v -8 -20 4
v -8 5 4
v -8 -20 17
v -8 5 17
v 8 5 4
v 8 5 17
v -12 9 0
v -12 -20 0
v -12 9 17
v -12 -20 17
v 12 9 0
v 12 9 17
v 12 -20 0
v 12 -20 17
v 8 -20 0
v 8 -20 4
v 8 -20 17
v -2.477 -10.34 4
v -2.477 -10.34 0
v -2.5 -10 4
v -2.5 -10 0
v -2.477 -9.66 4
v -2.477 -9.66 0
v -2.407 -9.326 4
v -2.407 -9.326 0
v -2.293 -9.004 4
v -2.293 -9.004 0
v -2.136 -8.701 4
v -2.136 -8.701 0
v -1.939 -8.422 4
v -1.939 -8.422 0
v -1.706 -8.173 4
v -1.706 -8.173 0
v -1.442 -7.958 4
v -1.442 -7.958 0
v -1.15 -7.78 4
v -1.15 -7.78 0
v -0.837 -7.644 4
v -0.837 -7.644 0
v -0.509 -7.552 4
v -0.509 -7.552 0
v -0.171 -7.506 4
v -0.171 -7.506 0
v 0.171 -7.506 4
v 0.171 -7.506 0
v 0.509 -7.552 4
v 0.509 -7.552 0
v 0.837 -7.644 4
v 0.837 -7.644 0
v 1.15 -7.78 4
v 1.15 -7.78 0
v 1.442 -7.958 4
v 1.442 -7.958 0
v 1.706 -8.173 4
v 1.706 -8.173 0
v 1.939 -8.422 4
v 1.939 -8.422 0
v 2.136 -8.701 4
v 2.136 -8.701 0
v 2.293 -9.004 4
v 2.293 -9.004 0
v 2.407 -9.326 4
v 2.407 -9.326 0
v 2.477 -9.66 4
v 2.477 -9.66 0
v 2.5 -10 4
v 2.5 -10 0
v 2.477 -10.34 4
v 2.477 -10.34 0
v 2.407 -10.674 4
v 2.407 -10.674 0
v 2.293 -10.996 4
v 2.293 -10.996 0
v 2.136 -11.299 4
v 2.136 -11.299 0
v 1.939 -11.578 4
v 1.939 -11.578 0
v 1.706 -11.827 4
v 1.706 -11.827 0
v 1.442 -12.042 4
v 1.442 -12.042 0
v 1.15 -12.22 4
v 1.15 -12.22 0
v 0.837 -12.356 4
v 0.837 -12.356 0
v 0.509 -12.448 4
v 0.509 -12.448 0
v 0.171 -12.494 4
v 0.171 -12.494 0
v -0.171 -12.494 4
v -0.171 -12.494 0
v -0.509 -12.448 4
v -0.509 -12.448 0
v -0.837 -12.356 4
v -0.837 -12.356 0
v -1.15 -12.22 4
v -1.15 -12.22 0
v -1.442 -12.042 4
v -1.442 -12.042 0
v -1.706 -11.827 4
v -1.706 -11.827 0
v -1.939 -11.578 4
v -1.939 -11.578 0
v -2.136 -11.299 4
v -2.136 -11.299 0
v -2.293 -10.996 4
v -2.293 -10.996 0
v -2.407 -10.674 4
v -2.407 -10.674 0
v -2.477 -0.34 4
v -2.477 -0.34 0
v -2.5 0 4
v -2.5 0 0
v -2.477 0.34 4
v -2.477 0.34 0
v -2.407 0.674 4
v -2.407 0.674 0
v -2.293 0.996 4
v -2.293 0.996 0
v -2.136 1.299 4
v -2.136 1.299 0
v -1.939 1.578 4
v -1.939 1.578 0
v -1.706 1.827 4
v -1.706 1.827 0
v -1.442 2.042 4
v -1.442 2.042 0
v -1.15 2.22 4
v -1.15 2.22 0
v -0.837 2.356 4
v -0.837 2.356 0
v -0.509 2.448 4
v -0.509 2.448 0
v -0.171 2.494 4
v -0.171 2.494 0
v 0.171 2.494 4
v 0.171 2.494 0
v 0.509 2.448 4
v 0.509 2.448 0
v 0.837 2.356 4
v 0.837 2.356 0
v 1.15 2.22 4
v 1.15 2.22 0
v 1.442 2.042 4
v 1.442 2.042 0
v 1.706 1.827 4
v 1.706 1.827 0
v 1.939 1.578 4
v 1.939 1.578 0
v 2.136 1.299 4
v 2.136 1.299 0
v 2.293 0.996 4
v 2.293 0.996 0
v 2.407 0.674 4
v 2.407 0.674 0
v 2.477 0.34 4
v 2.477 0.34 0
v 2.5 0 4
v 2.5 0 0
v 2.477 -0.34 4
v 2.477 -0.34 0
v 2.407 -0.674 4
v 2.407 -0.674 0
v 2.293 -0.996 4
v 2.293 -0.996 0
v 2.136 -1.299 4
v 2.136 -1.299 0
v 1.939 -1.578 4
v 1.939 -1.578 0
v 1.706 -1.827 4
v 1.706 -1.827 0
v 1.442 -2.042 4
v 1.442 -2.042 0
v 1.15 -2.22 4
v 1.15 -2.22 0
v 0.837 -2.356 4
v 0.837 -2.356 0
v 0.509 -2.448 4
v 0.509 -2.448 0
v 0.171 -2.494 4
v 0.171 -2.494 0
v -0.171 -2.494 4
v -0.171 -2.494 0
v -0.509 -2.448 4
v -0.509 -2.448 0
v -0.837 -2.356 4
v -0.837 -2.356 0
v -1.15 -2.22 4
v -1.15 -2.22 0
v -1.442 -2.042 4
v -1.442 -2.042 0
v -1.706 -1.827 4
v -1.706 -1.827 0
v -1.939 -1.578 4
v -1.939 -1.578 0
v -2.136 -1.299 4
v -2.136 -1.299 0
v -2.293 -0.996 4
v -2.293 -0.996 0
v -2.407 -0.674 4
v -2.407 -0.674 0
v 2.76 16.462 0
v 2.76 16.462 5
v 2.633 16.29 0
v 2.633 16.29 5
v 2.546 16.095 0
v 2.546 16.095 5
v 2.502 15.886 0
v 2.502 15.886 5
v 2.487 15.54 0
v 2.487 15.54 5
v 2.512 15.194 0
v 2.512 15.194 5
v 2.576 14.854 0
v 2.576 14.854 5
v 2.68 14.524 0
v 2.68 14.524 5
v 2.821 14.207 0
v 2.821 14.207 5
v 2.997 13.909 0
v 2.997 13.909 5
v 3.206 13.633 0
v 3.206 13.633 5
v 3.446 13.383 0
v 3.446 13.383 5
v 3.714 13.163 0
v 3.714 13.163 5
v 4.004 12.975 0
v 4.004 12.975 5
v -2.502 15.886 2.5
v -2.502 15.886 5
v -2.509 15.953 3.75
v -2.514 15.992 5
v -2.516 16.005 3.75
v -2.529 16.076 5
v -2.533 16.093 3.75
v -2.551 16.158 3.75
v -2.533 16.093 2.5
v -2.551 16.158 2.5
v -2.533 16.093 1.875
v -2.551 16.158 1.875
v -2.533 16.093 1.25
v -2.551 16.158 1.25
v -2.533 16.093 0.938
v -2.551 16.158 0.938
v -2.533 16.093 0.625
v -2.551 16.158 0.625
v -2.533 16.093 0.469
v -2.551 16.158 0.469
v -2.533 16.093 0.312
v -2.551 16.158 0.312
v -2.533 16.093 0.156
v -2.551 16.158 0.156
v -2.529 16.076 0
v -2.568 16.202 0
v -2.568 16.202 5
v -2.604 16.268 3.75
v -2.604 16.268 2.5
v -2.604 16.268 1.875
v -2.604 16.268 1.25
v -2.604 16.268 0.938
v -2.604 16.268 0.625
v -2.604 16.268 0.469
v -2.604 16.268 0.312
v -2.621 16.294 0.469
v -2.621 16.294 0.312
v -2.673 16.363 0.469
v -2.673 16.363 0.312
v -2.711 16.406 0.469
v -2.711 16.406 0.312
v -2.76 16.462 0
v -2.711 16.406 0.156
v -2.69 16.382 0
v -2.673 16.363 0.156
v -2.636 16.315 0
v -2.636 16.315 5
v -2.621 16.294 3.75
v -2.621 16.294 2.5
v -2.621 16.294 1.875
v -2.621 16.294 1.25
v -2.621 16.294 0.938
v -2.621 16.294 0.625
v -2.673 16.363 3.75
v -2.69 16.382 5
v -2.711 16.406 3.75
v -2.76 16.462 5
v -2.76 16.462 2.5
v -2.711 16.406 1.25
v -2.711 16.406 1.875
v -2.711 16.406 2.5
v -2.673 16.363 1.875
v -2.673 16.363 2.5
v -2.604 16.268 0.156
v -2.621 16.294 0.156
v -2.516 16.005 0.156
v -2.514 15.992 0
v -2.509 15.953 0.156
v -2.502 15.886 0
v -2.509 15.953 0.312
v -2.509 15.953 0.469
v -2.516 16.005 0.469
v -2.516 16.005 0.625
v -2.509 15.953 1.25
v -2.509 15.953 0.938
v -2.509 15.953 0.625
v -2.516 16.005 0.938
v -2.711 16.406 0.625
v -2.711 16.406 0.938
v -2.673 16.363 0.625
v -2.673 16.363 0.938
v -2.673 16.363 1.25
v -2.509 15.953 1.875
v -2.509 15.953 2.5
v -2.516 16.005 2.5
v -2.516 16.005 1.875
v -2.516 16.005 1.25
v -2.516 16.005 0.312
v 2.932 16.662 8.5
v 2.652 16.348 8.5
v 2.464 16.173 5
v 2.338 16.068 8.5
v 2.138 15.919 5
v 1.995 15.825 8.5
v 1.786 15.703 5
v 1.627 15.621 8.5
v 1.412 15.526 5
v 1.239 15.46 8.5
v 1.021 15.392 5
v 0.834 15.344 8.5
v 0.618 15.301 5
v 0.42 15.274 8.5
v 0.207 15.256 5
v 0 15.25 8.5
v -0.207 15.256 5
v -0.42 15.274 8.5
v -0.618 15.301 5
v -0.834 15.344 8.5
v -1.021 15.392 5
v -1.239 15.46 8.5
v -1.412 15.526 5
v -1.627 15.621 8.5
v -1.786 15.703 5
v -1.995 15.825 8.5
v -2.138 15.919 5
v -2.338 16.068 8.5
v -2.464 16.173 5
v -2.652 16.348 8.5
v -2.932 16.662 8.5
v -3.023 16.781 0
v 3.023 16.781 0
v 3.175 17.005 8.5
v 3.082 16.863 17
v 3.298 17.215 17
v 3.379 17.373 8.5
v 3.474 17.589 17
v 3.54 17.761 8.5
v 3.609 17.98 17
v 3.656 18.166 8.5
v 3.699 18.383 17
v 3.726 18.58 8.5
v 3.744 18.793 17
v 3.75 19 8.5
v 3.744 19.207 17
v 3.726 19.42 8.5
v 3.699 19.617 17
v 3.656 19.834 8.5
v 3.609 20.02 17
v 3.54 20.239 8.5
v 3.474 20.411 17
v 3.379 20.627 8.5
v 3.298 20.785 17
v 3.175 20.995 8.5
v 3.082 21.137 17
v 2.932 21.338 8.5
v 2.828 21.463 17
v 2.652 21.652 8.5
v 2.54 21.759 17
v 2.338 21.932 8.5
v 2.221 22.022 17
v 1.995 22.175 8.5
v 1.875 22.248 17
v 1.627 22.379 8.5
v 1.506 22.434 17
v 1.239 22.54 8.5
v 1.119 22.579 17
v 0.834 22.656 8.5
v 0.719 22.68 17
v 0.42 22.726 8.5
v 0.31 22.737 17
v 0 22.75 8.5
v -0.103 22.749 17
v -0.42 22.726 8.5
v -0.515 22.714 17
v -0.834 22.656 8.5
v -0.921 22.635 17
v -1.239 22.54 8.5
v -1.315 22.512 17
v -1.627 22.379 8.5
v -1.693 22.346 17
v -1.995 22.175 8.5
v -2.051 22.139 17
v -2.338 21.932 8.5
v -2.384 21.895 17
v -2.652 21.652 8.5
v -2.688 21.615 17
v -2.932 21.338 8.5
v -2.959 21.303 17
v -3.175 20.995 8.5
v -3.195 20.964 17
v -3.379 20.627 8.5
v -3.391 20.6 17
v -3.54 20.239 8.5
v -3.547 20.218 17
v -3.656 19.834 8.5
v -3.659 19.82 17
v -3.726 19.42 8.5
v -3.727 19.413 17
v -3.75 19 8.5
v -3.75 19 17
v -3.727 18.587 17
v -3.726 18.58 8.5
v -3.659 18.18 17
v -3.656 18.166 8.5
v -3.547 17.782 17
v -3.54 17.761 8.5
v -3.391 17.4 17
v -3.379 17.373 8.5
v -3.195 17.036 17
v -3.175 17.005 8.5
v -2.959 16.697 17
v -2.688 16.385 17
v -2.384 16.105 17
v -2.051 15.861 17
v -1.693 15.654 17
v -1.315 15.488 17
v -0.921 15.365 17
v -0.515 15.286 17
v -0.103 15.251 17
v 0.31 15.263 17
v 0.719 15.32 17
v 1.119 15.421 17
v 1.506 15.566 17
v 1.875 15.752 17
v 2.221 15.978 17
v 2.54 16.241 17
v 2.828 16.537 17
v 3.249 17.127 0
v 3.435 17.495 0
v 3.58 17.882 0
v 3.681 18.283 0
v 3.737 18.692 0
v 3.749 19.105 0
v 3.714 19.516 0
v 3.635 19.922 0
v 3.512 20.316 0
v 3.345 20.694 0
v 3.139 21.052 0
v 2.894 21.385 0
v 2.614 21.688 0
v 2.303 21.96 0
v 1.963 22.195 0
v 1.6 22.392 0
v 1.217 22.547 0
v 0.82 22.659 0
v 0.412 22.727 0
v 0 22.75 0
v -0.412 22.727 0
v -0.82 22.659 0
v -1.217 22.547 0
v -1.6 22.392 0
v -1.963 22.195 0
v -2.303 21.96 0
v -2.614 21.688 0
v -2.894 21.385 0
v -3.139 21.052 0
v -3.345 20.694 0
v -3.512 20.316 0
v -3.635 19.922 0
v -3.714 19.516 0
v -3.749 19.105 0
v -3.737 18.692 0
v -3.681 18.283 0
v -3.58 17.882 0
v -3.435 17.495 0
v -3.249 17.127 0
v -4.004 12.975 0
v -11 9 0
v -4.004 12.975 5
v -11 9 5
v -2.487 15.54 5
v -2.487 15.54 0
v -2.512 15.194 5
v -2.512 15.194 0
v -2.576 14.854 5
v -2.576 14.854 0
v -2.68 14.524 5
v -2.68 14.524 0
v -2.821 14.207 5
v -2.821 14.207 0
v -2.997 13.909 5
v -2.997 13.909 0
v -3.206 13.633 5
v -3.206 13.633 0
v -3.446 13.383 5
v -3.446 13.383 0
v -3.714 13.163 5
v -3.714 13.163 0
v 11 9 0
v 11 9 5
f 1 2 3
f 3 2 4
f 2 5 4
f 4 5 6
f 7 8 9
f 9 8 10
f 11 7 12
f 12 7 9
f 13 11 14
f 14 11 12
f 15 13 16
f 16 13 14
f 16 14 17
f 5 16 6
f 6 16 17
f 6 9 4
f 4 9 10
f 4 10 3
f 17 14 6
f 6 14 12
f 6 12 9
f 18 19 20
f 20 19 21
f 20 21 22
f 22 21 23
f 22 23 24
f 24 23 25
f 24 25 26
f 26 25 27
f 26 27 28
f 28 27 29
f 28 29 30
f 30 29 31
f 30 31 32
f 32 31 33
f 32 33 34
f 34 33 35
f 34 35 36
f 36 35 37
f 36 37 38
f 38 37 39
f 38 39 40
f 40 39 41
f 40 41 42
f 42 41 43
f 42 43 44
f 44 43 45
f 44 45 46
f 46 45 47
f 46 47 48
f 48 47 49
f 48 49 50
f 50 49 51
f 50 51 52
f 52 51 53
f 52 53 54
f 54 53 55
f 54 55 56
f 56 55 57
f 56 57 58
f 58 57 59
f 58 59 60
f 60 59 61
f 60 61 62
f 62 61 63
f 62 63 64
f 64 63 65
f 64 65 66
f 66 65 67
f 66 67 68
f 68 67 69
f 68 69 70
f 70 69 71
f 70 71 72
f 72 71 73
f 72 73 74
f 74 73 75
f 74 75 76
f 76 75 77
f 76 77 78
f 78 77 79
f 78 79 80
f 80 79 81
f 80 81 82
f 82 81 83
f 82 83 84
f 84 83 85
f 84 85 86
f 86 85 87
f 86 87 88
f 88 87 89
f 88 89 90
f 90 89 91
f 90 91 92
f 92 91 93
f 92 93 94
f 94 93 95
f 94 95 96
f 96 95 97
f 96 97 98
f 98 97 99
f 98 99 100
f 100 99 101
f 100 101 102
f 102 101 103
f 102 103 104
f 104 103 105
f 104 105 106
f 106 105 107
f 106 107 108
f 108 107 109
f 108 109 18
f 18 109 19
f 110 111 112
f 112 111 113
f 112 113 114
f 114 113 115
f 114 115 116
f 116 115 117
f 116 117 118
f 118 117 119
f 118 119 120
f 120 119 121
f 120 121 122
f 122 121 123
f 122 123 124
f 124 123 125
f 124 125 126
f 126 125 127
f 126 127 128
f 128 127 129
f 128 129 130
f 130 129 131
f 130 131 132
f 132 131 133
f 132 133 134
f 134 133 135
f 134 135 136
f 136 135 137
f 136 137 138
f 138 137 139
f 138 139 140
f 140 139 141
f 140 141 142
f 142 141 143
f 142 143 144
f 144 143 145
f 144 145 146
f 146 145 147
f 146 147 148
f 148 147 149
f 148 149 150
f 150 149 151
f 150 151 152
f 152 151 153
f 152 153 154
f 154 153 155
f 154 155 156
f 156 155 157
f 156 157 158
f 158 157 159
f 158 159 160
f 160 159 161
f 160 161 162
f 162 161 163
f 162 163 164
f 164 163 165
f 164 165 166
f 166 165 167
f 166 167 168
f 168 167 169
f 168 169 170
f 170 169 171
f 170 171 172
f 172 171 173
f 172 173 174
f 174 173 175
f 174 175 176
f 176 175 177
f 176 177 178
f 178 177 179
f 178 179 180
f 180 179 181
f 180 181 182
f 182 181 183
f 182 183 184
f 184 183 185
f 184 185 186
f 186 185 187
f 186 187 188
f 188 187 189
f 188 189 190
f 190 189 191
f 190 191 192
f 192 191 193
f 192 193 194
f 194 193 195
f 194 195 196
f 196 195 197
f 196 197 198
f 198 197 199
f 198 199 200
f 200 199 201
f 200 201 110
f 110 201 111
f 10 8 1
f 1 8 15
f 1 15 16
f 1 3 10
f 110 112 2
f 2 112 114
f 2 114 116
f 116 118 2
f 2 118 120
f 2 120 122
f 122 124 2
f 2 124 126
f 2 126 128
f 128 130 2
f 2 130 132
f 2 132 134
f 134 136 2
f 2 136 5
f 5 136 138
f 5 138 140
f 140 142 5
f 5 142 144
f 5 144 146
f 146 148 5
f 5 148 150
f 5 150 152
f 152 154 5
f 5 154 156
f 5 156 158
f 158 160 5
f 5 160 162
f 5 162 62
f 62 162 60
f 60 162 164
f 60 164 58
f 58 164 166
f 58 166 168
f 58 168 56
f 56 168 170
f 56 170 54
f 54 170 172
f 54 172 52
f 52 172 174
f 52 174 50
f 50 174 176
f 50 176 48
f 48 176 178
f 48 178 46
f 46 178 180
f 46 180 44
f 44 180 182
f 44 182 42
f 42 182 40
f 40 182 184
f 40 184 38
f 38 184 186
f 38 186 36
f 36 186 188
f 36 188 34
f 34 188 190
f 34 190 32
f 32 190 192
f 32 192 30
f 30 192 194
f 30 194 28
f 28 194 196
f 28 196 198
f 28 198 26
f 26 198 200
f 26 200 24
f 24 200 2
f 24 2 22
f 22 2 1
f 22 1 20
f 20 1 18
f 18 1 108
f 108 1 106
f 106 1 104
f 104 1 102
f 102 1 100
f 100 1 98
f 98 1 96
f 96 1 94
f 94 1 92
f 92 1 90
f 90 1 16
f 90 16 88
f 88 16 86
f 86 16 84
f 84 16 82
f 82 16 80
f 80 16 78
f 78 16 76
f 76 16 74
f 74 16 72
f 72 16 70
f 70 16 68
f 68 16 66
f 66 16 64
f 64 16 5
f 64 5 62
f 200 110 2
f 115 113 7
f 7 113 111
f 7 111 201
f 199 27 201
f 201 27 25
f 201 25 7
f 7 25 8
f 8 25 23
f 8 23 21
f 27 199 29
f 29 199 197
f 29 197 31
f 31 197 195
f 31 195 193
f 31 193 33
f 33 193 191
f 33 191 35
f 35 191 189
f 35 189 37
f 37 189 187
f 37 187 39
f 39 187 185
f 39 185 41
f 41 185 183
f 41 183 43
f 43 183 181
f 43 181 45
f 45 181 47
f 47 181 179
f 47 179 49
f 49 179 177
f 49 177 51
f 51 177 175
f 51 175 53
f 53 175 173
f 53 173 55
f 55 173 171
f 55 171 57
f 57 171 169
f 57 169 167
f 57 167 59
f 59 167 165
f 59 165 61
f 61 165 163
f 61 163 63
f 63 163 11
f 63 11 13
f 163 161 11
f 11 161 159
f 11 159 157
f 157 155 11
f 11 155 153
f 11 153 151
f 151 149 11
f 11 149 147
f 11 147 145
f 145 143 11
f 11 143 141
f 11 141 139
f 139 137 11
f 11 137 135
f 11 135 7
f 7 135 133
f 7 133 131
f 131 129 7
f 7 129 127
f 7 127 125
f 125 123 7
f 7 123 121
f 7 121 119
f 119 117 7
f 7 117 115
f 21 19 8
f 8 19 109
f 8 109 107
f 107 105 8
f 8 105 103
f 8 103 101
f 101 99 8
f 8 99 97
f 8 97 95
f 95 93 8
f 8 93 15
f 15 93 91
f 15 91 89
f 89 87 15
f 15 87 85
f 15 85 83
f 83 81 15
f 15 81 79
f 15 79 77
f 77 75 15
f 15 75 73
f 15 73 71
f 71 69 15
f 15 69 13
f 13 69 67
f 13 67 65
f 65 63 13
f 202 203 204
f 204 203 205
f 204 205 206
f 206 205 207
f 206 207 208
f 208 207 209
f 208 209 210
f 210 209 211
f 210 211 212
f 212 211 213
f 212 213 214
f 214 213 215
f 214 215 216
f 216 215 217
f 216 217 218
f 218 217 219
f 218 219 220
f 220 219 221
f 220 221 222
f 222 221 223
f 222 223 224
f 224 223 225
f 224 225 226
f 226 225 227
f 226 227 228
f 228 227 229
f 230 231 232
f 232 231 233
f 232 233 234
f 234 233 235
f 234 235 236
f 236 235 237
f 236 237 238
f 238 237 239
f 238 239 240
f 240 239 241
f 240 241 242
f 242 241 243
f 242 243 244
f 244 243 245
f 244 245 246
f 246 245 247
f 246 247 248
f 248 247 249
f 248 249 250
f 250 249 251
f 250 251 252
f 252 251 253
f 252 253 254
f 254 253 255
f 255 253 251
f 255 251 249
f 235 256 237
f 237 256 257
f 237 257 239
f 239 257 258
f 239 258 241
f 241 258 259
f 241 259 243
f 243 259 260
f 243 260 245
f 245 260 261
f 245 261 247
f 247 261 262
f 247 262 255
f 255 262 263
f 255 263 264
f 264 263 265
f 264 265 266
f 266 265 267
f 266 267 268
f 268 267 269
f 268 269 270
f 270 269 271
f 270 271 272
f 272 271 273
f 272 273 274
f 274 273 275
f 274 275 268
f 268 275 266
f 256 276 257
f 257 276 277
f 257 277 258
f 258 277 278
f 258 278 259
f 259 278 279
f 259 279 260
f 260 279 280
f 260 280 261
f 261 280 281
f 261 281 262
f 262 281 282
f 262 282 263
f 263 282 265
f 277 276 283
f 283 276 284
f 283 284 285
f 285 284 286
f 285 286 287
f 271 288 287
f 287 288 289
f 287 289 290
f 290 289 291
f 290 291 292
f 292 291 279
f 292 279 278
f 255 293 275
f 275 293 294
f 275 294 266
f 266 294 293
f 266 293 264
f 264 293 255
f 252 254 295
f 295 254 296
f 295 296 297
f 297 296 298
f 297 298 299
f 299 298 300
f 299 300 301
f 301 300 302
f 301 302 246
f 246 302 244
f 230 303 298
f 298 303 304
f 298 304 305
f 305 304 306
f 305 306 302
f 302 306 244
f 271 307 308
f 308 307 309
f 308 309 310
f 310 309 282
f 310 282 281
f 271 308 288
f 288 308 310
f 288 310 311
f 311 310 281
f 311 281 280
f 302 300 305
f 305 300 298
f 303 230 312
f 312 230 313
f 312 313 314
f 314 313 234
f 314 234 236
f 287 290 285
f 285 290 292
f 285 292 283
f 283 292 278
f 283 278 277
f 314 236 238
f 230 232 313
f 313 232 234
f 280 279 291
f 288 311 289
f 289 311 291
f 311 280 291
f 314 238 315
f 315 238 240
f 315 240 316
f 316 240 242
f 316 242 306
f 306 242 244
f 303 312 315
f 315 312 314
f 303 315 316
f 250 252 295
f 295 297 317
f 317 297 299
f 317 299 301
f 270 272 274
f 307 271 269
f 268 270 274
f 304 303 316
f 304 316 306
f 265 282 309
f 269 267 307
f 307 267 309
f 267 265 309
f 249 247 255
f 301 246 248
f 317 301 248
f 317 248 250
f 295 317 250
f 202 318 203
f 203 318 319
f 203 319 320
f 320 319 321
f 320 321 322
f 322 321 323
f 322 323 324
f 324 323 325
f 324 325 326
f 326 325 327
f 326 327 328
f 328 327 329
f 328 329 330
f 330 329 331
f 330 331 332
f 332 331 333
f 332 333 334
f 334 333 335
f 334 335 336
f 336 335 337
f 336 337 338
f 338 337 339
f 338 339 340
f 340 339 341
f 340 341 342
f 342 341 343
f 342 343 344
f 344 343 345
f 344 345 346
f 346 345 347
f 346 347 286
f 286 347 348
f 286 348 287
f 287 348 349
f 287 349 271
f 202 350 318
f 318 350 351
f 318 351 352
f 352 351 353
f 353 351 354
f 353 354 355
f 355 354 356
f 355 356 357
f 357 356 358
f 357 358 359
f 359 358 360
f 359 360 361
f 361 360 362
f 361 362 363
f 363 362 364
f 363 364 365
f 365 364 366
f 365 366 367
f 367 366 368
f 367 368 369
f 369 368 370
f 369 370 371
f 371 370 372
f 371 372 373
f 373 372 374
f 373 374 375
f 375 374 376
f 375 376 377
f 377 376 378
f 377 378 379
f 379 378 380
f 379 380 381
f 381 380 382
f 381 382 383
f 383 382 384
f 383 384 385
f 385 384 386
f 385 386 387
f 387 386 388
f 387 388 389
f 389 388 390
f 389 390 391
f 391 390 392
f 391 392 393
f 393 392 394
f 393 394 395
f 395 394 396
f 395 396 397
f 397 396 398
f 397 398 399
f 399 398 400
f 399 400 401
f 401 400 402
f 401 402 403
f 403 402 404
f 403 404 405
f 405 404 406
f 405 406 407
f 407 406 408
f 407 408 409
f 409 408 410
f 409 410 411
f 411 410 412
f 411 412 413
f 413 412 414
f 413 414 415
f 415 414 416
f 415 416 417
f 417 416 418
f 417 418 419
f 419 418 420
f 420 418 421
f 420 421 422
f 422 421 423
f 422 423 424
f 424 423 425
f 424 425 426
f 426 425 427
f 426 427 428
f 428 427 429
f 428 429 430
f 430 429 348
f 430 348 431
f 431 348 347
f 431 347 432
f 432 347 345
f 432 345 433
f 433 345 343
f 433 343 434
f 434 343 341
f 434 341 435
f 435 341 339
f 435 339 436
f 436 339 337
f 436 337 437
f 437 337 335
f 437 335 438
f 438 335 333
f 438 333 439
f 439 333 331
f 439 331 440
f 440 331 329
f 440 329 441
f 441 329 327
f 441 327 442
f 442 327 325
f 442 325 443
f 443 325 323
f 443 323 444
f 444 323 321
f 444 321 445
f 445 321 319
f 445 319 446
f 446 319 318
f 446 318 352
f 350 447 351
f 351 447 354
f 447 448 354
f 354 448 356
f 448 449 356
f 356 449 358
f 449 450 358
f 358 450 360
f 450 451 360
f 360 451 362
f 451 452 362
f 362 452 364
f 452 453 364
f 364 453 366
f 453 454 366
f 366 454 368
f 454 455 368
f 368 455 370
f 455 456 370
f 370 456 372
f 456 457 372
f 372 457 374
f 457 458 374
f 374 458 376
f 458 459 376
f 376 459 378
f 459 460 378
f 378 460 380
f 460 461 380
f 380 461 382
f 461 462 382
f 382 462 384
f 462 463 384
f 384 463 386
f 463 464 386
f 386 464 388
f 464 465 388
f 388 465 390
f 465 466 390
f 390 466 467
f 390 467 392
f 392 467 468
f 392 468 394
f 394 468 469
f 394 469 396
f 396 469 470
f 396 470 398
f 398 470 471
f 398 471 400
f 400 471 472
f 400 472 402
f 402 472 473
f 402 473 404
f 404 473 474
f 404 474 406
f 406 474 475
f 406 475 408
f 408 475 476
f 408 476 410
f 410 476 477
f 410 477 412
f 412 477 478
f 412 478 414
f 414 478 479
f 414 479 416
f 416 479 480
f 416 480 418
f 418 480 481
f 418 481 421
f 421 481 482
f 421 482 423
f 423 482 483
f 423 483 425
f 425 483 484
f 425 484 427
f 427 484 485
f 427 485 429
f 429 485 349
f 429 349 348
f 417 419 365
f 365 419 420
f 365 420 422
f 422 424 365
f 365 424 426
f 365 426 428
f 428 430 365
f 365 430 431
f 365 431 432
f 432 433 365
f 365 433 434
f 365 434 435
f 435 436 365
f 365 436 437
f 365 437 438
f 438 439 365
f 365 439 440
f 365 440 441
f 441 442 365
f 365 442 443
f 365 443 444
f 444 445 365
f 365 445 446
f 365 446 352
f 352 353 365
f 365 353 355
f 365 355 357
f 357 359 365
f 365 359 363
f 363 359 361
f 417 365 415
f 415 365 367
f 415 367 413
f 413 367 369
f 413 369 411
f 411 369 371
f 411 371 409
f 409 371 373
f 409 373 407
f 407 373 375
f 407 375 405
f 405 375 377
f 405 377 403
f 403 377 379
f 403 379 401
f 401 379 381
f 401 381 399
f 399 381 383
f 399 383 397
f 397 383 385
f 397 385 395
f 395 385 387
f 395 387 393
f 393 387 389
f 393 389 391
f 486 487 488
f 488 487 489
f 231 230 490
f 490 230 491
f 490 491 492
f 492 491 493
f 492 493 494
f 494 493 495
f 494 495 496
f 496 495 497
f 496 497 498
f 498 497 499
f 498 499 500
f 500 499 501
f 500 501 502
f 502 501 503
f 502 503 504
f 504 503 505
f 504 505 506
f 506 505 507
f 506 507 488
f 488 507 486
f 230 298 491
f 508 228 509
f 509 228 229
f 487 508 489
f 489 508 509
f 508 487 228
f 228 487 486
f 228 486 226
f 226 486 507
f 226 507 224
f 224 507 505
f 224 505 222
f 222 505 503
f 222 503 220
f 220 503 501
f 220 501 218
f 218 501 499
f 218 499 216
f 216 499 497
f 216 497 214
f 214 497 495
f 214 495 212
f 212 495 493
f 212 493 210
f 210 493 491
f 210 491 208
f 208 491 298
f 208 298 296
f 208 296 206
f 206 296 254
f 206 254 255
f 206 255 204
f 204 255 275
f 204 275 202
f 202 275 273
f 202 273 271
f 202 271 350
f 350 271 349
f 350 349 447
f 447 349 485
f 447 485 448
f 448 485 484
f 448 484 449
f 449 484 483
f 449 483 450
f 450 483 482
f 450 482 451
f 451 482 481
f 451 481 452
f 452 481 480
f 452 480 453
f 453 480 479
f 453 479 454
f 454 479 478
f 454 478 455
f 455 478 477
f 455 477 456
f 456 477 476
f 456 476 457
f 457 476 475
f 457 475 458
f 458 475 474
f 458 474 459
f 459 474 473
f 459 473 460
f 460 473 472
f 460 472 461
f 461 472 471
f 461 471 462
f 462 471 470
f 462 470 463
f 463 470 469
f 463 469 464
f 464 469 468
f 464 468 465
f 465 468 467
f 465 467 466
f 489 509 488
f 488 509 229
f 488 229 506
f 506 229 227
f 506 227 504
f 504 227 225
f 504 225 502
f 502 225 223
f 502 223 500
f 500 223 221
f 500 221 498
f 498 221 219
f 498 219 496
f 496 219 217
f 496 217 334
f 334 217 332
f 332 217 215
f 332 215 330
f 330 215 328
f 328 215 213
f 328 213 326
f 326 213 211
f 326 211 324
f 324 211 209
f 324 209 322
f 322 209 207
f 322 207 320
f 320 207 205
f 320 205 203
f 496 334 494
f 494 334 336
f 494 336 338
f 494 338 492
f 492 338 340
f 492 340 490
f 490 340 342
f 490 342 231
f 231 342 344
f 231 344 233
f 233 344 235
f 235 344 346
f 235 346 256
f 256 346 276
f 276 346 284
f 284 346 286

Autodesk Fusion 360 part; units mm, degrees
sketch "Sketch4" plane through (0, 0, 0) normal (0, 0, 1) x (1, 0, 0)
  circle A0 centre (0, 0) radius 2.5
  line L0 (0, 0) -> (0, 5) construction
  circle A1 centre (0, -10) radius 2.5
  line L1 (0, 5) -> (0, -20) construction
  line L2 (0, -20) -> (-8, -20)
  line L3 (0, -20) -> (8, -20)
  line L4 (0, 5) -> (8, 5)
  line L5 (0, 5) -> (-8, 5)
  line L6 (-8, 5) -> (-8, -20)
  line L7 (8, -20) -> (8, 5)
  line L8 (-8, -20) -> (-12, -20)
  line L9 (-12, -20) -> (-12, 9)
  line L10 (-12, 9) -> (12, 9)
  line L11 (12, 9) -> (12, -20)
  line L12 (12, -20) -> (8, -20)
  dimension "d31" = 5
  dimension "d32" = 5
  dimension "d35" = 0
  dimension "d36" = -10
  dimension "d38" = 8
  dimension "d39" = 8
  dimension "d58" = 8
  dimension "d59" = 8
  dimension "d60" = 4
  dimension "d61" = 29
  dimension "d62" = 24
extrude "Extrude7" add sketch "Sketch4" along normal blind 4 contours L2 L3 L4 L5 L6 L7 makes body 1
extrude "Extrude8" add sketch "Sketch4" along normal blind 17 contours L4 L5 L6 L7 L8 L9 L10 L11 L12 bodies 1
sketch "Sketch5" plane through (0, 0, 0) normal (0, 0, -1) x (1, 0, 0)
  circle A0 centre (0, 0) radius 2.5
  circle A1 centre (0, 10) radius 2.5
  line L0 (8, 20) -> (-12, 20)
  line L1 (0, -9) -> (0, -19) construction
  circle A2 centre (0, -19) radius 3.75
  line L2 (11, -9) -> (4.0043, -12.9748)
  line L3 (-4.0043, -12.9748) -> (-11, -9)
  arc A3 (4.0043, -12.9748) -> (2.5646, -16.2641) centre (5.4863, -15.5832) ccw
  arc A4 (-2.5646, -16.2641) -> (-4.0043, -12.9748) centre (-5.4863, -15.5832) ccw
  line L4 (-12, 20) -> (-12, -9)
  line L5 (-12, -9) -> (12, -9)
  line L6 (12, -9) -> (12, 20)
  line L7 (12, 20) -> (8, 20)
  dimension "d48" = 7.5
  dimension "d49" = 3
extrude "Extrude9" add sketch "Sketch5" against normal blind 5 separate body contours A2 L2 L3 A3 A4 L5 makes body 2
extrude "Extrude10" add sketch "Sketch5" against normal blind 17 contours A2 bodies 2
fillet "Fillet4" radius 1 1 edges at (-2.5646, 16.2641, 2.5) on bodies 2
fillet "Fillet5" radius 1 1 edges at (2.5646, 16.2641, 2.5) on bodies 2
